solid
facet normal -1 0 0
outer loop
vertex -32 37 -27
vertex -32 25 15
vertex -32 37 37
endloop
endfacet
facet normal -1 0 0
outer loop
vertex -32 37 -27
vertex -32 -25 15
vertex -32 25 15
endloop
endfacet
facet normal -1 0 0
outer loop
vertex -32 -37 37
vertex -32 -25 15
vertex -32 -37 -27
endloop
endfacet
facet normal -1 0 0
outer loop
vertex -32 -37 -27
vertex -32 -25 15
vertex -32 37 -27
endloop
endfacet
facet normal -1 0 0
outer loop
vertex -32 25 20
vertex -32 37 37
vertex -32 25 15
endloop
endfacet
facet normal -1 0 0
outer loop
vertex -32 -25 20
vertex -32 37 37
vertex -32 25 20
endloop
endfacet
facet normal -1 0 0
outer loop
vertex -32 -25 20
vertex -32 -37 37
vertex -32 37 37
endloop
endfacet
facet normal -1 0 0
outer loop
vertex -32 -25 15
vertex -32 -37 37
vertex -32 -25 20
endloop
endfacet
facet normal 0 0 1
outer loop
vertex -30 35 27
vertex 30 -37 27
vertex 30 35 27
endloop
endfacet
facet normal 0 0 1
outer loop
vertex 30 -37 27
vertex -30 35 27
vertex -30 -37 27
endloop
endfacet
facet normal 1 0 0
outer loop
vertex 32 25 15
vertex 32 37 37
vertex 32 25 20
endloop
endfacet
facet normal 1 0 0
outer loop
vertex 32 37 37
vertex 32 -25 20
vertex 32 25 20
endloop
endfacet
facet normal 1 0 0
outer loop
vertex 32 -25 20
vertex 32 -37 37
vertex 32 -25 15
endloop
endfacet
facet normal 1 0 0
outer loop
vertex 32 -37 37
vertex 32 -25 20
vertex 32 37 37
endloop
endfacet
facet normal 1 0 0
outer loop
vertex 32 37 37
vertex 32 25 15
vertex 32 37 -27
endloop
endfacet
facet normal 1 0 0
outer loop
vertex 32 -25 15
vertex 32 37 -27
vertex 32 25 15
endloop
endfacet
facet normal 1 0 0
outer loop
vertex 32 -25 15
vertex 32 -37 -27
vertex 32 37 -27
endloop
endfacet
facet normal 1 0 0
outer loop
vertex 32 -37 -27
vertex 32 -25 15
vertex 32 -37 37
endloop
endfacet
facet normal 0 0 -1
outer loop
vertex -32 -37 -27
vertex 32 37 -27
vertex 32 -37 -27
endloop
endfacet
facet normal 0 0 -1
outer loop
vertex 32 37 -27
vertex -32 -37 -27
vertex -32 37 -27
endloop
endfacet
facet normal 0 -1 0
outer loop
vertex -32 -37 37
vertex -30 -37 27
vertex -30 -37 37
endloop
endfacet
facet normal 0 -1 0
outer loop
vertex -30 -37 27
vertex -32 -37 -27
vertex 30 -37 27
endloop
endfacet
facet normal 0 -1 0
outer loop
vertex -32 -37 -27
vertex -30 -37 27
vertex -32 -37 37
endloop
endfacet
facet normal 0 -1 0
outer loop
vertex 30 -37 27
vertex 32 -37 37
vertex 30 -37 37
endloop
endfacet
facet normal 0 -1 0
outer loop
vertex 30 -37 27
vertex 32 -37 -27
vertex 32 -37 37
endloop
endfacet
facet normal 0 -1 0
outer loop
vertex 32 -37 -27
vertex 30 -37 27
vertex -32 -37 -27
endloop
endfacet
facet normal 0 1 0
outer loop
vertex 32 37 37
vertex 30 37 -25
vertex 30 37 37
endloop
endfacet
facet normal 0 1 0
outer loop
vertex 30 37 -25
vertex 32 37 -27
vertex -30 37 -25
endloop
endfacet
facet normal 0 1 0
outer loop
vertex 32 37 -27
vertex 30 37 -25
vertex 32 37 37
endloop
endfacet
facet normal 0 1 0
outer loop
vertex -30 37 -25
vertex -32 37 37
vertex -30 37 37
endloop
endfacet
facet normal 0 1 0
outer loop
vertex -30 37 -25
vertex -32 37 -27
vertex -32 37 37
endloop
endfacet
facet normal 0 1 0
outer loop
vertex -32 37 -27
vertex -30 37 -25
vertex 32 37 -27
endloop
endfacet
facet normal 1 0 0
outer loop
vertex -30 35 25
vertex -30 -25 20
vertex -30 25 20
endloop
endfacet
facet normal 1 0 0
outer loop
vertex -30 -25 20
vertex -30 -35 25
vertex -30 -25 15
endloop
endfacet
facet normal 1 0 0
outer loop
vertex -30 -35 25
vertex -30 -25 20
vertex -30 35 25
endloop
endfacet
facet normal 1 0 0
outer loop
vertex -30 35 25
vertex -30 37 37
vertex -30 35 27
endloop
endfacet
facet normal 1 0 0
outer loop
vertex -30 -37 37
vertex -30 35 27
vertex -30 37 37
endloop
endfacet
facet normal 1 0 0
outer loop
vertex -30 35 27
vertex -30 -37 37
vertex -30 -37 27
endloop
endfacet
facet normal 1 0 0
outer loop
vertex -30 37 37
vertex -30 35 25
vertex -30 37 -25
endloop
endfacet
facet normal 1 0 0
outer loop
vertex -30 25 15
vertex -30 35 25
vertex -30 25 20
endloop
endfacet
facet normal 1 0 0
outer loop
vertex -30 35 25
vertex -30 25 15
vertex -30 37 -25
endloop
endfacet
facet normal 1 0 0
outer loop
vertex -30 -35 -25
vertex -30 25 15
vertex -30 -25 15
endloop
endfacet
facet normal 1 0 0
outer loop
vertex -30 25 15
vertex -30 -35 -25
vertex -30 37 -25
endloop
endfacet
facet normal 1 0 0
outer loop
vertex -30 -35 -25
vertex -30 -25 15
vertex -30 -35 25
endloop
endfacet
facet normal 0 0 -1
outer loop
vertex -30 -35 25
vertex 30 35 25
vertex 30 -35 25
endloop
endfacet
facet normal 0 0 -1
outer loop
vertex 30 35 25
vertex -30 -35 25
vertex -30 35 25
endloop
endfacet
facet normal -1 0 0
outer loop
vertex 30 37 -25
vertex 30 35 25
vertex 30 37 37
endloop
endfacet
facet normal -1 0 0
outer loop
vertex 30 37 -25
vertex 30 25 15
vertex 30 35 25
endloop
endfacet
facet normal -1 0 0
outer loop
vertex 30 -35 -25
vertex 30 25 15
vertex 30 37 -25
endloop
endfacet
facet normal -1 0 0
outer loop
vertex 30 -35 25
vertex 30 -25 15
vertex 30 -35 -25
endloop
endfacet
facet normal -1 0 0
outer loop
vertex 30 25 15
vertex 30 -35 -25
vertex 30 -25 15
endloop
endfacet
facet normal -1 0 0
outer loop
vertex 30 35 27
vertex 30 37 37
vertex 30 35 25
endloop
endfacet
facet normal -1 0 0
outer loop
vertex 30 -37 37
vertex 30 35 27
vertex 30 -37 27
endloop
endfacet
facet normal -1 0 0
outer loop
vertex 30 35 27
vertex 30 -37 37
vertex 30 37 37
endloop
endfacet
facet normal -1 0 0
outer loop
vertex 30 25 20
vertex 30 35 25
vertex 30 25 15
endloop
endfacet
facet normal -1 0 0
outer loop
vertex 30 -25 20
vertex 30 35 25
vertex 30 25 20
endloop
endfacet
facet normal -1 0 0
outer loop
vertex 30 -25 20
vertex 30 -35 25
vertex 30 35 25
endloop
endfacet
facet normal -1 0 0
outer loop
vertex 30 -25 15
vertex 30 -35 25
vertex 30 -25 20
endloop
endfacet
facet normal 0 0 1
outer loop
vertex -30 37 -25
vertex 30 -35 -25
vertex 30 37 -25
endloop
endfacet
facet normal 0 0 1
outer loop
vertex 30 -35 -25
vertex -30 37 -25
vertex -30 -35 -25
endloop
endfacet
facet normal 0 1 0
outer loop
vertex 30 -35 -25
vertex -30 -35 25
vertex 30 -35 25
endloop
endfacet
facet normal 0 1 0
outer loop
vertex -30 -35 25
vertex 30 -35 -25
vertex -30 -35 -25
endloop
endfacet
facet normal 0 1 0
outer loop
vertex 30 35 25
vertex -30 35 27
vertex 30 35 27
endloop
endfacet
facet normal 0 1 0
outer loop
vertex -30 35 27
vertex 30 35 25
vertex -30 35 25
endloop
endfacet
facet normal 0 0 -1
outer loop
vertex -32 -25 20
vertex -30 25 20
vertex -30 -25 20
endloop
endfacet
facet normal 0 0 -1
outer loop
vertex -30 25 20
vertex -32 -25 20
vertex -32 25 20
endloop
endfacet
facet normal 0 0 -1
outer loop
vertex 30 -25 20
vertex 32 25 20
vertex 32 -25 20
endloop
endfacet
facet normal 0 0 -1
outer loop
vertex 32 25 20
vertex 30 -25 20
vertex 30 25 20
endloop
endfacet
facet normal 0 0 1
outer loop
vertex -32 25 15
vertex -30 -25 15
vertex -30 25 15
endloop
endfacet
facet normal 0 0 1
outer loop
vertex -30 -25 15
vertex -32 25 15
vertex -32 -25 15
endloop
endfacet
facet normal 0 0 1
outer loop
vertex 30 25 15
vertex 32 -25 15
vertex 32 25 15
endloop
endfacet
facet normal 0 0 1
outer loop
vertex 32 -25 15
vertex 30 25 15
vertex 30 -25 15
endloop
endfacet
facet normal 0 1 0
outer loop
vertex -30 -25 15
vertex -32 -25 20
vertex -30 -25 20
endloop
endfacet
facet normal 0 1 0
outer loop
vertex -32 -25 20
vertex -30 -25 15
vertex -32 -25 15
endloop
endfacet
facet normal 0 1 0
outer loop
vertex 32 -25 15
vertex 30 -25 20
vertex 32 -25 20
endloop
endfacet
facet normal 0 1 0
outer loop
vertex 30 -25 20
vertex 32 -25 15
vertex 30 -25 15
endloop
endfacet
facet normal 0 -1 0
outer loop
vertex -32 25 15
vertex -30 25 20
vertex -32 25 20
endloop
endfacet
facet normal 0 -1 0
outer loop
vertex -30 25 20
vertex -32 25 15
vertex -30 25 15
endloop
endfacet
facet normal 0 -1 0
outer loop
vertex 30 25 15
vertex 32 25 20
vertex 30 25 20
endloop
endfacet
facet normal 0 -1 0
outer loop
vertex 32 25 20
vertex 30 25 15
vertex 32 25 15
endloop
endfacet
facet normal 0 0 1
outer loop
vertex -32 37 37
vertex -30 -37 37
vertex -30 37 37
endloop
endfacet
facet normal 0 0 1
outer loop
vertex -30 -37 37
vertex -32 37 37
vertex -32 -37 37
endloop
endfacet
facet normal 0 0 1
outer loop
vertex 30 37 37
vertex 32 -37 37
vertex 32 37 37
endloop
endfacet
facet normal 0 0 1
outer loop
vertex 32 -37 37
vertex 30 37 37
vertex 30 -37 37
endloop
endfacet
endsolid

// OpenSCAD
difference(){
    cube([64,74,54],center=true);
    translate([0,3,0])
    cube([60,76,50],center=true);
    translate([0,74/2-0.5,10])
    cube([60,3,40],center=true);
    translate([0,0,15+5/2])
    cube([70,50,5],center=true);
}
difference(){
    translate([0,0,54/2+5])
    cube([64,74,10],center=true);
    translate([0,0,54/2+5.4])
    cube([60,76,11],center=true);
    
}
